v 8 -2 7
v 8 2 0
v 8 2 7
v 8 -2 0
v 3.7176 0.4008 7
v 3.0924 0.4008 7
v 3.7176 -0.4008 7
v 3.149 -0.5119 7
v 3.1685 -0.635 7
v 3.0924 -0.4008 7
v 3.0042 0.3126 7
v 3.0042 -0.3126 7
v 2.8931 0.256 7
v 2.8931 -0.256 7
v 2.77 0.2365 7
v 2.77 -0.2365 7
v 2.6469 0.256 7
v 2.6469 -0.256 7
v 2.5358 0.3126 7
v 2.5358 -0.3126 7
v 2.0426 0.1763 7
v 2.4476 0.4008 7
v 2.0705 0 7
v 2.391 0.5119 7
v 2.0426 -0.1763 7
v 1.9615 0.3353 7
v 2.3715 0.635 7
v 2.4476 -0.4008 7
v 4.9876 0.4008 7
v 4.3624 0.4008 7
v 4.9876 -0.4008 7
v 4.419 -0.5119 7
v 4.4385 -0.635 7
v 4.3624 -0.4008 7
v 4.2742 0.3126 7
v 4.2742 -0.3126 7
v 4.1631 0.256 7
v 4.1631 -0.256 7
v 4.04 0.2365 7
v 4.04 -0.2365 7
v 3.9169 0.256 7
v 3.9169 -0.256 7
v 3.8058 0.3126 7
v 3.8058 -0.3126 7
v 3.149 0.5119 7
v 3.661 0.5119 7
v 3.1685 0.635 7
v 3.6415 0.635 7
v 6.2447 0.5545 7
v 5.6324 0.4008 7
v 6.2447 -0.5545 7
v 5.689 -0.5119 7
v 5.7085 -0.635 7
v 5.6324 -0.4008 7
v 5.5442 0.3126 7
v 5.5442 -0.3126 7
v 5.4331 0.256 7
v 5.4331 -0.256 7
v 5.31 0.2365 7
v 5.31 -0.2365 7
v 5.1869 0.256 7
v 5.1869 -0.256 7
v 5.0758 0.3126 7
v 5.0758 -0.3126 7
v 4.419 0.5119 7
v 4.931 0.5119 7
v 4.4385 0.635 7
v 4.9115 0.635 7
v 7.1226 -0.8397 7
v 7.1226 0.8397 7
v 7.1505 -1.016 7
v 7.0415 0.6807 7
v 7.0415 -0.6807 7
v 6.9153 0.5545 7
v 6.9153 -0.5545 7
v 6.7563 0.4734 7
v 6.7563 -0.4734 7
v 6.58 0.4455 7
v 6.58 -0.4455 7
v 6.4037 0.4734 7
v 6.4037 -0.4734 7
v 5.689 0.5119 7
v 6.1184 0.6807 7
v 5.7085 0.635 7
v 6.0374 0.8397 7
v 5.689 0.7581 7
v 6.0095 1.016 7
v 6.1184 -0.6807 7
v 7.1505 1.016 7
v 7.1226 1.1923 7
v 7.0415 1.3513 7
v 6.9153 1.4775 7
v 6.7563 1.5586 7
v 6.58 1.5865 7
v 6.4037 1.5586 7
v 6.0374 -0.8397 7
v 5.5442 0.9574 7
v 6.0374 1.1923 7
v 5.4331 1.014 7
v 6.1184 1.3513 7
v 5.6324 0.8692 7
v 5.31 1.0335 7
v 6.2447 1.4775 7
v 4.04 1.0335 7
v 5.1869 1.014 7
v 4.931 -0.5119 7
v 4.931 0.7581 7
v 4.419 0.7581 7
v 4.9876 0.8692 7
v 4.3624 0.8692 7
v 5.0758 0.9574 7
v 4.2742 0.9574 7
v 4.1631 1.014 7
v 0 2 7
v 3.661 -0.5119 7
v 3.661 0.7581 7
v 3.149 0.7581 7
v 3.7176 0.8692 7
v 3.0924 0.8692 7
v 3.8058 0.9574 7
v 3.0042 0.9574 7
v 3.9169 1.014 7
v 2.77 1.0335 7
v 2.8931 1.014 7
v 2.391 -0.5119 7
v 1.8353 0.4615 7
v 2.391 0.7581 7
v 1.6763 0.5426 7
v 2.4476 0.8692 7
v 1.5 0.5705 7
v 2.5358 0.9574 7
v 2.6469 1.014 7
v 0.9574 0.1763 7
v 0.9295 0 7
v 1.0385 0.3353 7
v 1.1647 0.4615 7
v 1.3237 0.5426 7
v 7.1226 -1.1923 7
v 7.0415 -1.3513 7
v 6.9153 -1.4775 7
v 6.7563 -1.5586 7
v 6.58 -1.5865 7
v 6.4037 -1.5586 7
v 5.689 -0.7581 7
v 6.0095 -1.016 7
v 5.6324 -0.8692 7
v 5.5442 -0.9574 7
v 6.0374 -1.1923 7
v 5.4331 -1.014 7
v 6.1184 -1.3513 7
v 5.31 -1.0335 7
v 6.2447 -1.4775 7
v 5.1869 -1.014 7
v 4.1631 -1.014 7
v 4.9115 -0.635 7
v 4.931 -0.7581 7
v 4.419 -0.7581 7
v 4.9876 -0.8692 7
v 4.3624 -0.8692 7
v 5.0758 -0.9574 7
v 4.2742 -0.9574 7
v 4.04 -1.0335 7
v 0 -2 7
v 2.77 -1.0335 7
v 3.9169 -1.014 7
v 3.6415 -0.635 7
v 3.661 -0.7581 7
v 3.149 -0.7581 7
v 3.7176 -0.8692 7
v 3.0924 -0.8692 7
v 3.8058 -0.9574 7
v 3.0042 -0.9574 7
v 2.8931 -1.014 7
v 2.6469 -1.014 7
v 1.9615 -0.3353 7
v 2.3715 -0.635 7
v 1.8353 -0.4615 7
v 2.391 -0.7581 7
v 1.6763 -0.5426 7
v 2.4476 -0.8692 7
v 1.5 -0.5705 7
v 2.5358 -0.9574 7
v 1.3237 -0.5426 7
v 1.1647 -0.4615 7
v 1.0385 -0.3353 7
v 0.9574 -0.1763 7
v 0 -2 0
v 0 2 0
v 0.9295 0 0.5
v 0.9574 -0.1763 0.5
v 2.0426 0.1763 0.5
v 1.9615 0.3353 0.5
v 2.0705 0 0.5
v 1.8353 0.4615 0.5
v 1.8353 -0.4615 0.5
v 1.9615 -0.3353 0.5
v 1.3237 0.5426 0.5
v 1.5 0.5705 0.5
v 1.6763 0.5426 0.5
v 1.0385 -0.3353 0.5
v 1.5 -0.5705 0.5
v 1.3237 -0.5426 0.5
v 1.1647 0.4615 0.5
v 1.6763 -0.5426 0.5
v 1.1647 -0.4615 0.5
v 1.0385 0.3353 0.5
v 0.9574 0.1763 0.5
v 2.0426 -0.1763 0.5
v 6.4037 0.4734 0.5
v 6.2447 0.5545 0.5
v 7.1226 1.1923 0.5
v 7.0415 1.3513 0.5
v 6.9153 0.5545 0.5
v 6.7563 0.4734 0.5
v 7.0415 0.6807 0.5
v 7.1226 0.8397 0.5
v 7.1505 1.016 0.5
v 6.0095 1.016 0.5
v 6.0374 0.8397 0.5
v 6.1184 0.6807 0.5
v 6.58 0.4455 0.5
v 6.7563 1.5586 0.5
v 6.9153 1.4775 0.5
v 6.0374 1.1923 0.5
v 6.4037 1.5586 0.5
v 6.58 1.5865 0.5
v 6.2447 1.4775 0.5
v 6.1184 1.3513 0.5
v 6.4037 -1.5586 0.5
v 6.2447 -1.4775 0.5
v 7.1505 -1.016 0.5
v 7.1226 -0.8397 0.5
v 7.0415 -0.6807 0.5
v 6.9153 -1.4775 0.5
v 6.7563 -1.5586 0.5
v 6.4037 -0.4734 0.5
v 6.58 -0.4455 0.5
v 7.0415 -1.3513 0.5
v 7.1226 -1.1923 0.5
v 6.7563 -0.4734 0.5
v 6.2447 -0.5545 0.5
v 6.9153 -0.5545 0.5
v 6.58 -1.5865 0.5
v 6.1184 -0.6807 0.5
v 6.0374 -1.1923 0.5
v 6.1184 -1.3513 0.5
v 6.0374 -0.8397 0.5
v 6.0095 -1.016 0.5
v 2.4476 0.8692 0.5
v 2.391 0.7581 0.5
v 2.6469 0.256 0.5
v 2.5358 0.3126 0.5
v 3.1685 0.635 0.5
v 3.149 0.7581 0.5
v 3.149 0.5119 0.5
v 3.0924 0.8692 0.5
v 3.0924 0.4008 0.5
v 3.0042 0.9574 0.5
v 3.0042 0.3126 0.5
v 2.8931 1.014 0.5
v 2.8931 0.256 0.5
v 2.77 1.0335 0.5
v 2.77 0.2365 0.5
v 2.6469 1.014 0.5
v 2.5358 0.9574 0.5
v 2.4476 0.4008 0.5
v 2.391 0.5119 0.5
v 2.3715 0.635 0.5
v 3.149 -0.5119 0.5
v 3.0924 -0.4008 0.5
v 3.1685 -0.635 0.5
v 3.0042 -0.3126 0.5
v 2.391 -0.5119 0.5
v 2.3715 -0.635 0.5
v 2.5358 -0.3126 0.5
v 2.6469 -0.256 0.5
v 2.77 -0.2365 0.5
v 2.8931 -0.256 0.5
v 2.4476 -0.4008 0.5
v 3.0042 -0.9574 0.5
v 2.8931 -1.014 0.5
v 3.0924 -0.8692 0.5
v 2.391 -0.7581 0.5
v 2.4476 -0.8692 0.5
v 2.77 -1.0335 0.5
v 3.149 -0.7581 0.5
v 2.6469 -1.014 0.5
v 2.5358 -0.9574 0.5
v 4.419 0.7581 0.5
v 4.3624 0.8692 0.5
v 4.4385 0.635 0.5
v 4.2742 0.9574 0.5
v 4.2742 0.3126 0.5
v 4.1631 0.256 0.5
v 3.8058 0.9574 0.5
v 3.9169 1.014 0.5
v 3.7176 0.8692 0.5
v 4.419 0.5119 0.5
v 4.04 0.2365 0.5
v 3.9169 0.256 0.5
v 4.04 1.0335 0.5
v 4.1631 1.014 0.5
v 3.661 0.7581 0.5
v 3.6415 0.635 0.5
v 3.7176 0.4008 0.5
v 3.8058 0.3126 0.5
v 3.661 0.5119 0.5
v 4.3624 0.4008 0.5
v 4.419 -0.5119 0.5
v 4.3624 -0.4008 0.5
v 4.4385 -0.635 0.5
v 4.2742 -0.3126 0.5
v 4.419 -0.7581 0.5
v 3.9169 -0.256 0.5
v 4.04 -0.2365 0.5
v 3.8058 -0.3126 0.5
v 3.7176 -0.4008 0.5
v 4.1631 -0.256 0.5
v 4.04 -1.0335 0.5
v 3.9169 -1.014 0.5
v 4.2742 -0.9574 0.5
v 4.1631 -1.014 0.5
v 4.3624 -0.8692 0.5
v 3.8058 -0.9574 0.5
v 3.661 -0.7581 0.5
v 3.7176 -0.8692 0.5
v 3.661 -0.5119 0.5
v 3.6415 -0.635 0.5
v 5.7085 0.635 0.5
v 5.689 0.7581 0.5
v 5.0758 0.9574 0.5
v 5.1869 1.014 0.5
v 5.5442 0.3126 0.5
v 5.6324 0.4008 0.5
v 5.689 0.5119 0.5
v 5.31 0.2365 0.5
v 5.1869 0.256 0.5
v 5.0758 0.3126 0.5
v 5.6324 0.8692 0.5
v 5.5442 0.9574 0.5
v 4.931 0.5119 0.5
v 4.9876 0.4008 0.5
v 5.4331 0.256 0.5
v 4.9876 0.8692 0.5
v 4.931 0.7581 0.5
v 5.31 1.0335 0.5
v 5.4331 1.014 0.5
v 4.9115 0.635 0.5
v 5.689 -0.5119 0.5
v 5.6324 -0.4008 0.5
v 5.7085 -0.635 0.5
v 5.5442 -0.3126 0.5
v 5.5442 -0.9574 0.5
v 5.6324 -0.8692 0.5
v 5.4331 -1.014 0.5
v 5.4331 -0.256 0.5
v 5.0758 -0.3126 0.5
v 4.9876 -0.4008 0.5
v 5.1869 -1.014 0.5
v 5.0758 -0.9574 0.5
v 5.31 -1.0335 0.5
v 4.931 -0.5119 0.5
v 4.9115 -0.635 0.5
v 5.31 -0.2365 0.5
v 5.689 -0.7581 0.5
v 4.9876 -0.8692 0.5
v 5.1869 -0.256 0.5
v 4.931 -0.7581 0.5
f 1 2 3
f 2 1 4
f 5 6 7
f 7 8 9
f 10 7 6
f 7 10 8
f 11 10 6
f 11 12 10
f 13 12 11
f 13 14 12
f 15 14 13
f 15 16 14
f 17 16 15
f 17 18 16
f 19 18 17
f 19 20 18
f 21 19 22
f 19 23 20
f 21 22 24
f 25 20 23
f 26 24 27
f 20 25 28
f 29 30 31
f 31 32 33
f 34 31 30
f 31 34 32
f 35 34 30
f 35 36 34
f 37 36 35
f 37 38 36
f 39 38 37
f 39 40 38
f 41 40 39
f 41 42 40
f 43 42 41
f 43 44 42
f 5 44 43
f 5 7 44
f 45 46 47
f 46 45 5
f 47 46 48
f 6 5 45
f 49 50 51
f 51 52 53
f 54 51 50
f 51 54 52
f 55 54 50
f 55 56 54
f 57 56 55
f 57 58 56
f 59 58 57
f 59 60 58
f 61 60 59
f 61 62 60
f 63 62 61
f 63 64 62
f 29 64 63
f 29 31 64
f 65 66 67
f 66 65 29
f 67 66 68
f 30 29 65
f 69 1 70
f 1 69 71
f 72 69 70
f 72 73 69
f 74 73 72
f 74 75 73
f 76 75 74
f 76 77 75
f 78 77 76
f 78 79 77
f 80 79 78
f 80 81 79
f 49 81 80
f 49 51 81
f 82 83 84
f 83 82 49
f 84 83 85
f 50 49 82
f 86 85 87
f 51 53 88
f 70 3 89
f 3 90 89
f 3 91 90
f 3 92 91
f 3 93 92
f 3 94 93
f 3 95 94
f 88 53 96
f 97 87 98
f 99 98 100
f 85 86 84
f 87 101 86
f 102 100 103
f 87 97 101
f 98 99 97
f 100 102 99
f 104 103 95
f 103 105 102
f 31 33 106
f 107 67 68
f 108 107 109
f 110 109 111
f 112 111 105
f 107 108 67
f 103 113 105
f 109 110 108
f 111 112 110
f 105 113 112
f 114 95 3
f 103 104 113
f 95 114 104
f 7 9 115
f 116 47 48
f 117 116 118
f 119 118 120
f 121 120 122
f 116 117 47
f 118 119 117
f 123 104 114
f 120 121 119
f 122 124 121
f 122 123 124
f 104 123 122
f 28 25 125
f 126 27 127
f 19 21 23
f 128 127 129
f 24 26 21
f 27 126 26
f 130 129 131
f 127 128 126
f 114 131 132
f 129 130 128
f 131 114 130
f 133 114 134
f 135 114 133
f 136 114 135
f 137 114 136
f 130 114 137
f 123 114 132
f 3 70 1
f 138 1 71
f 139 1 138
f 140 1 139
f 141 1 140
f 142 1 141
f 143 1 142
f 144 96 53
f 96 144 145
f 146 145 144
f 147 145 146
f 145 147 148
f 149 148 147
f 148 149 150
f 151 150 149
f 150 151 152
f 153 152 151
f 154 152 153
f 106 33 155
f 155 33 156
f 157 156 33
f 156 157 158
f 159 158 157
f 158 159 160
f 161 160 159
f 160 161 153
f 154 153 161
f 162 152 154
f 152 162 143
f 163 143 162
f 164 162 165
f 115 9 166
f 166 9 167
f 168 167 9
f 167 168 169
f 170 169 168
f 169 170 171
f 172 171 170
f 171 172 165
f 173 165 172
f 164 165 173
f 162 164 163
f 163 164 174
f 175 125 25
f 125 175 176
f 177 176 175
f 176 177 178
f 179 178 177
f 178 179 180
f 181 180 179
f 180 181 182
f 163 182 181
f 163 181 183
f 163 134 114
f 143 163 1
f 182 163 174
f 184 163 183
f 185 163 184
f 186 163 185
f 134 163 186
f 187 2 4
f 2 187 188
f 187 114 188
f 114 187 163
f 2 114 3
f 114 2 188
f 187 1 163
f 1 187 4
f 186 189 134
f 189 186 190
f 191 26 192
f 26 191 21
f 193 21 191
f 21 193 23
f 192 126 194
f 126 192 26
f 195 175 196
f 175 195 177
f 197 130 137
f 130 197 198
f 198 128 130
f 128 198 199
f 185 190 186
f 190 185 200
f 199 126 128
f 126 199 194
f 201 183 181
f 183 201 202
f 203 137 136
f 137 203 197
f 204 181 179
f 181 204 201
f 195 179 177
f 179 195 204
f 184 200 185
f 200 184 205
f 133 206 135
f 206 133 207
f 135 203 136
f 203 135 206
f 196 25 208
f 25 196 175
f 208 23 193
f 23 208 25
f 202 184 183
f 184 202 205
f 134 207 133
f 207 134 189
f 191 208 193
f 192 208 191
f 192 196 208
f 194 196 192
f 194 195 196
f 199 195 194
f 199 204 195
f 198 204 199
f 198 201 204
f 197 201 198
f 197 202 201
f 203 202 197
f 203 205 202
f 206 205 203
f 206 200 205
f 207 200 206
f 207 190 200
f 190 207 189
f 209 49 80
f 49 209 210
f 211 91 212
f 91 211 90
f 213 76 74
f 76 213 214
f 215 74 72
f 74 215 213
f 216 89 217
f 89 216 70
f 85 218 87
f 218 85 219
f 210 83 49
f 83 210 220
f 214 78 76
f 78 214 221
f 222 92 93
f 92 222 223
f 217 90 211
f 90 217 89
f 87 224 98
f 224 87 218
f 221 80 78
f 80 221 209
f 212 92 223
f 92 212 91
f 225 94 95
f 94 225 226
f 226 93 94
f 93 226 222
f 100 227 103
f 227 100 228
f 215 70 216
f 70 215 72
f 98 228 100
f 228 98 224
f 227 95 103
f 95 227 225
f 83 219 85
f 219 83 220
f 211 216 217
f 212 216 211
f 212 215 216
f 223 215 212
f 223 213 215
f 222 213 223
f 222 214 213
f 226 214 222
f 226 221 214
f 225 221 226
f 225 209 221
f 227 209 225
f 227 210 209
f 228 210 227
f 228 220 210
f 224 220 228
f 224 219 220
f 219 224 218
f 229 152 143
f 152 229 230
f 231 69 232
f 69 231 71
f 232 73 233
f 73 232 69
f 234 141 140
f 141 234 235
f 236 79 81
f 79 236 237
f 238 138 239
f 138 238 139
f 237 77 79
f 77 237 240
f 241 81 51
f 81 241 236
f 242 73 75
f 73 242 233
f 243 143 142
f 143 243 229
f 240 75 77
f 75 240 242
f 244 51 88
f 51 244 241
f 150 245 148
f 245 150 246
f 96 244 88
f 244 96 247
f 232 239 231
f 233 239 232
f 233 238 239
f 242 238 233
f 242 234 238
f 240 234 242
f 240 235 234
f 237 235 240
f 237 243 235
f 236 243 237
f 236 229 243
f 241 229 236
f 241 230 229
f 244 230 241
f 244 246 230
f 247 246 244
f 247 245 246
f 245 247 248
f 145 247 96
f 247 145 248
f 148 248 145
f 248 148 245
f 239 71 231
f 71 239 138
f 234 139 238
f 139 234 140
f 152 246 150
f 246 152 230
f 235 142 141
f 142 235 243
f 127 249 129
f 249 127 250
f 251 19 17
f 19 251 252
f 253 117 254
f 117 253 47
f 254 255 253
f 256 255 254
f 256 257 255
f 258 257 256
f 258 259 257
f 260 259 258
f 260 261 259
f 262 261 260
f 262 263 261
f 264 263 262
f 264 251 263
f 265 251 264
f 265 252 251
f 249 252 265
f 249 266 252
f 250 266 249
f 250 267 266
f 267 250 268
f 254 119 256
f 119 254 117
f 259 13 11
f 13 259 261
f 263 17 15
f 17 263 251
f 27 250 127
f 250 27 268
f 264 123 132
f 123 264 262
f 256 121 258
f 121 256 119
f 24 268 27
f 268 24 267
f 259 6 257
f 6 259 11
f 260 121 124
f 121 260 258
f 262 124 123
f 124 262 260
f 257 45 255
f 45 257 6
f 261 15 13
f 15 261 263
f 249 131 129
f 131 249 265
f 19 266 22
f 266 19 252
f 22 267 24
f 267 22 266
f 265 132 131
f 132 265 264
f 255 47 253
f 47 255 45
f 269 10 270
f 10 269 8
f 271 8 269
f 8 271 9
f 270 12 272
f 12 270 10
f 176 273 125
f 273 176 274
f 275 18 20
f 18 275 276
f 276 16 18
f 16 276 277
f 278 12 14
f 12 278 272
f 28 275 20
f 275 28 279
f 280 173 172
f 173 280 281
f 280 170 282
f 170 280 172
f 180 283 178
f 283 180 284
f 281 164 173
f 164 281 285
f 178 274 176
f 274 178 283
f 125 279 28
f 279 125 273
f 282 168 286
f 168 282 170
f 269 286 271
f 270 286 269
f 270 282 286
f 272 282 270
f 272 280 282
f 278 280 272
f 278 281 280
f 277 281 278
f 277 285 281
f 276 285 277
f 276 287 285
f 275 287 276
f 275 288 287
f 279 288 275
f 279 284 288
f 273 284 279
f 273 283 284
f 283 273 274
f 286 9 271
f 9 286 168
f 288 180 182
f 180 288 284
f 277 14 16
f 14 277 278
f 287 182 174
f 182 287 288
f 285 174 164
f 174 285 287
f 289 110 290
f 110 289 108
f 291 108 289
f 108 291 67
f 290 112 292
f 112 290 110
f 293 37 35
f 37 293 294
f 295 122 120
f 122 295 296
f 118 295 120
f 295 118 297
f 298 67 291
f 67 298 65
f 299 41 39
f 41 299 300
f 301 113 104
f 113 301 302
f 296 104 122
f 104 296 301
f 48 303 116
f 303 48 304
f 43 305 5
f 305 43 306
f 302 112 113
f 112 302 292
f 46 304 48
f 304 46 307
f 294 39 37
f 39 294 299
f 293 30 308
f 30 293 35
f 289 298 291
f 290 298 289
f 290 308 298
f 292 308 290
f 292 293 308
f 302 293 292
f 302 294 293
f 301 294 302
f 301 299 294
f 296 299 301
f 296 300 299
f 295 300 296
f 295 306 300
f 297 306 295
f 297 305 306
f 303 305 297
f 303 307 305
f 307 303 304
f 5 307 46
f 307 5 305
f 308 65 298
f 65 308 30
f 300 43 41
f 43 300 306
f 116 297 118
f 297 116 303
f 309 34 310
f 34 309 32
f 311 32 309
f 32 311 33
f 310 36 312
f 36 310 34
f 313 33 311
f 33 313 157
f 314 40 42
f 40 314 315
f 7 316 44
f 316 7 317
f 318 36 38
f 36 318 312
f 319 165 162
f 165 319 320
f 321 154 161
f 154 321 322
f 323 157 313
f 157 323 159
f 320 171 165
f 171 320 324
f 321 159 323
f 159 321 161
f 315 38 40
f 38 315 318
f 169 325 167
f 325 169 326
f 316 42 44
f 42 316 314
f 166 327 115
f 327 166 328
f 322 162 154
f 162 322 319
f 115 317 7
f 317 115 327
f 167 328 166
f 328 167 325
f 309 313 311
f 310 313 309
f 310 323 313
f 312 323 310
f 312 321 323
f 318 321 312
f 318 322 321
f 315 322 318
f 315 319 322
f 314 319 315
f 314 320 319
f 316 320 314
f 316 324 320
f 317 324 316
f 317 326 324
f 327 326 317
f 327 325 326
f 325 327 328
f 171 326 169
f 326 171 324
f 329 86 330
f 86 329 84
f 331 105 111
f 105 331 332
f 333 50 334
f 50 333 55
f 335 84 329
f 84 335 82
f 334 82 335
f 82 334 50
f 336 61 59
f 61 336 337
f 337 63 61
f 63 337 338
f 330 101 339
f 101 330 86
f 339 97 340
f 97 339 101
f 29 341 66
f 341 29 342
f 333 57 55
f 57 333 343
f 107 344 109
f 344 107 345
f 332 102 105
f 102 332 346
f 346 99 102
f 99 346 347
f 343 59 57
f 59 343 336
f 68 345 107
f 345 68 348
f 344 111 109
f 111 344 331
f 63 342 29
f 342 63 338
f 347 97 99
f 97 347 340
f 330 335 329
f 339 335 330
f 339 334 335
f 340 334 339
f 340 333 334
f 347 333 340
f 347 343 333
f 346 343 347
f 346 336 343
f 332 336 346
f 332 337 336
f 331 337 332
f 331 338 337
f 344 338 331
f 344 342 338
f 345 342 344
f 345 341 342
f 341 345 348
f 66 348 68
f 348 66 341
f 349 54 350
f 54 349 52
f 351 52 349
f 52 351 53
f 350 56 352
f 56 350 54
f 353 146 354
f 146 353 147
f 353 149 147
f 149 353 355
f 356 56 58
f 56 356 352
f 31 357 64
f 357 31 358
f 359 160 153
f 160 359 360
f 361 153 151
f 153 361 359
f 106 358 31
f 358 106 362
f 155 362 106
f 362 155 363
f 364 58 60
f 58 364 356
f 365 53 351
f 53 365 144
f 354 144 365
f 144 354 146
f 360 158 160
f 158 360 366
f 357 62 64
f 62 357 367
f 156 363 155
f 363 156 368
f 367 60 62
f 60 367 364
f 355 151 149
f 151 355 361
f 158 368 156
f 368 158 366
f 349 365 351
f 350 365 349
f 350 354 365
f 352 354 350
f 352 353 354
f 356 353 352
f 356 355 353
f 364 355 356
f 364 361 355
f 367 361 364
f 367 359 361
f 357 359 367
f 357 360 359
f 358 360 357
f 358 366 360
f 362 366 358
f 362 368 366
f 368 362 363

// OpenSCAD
// from https://www.thingiverse.com/thing:3035278/files
$fn=20;

isx = 1.5;       // Inital Spacing of alignment pin along X axis

a_dia_tol = 0.15; // Alignment Hole Tolerance (how much larger the hole is than the spec diameter)
p_dia_tol = 0.01; // Probe Hole Tolerance (how much larger the hole is than the spec diameter)

align_pin_dia = 0.991+a_dia_tol; // Alignment Pin Diamenter (spec)
probe_pin_dia = 0.787+p_dia_tol; // Probe Pin Diameter (spec)

/* Probe Clip Dimention */
boxx = 8;
boxy = 4;
boxh = 7;
his = 0.5; // Alignment/Probe hole offset height spacing (z axis above zero)

/* Probe Pair Spacing */
pps = 1.270;// mm probe pair spacing
pys = 0.635; // Probe spacing from x axis along y axis

/* Align Hole Calc */
ap1xs   = isx;        // Align pin 1 x spacing
ap2a3xs = ap1xs+5.080; // Align pin 2&3 x spacing
ap2a3ys = 1.016;

/* Probe Shield */
// http://www.tag-connect.com/Materials/TC2030-IDC.pdf
pss = ap1xs + pps - (probe_pin_dia/2);
psx = pps*2 + probe_pin_dia;
psy = 1.016*2;

/* Probe Pair Space Calc */
pp1s = ap1xs + pps*1; // mm spacing 
pp2s = ap1xs + pps*2; // mm spacing 
pp3s = ap1xs + pps*3; // mm spacing 

/* 3D Model */
difference() {
translate([0  , -boxy/2  , 0])
  /* Main Plug */
  cube([boxx,boxy,boxh]);

/* Align Hole */
#translate([ap1xs   , 0         , his])
    cylinder(r=align_pin_dia/2, h=boxh);
#translate([ap2a3xs , +ap2a3ys  , his])
    cylinder(r=align_pin_dia/2, h=boxh);
#translate([ap2a3xs , -ap2a3ys  , his])
    cylinder(r=align_pin_dia/2, h=boxh);

/* Probe Pair 1 */
#translate([pp1s, +pys  , his])
    cylinder(r=probe_pin_dia/2, h=boxh);
#translate([pp1s, -pys  , his])
    cylinder(r=probe_pin_dia/2, h=boxh);
/* Probe Pair 2 */
#translate([pp2s, +pys  , his])
    cylinder(r=probe_pin_dia/2, h=boxh);
#translate([pp2s, -pys  , his])
    cylinder(r=probe_pin_dia/2, h=boxh);
/* Probe Pair 3 */
#translate([pp3s, +pys  , his])
    cylinder(r=probe_pin_dia/2, h=boxh);
#translate([pp3s, -pys  , his])
    cylinder(r=probe_pin_dia/2, h=boxh);
}
